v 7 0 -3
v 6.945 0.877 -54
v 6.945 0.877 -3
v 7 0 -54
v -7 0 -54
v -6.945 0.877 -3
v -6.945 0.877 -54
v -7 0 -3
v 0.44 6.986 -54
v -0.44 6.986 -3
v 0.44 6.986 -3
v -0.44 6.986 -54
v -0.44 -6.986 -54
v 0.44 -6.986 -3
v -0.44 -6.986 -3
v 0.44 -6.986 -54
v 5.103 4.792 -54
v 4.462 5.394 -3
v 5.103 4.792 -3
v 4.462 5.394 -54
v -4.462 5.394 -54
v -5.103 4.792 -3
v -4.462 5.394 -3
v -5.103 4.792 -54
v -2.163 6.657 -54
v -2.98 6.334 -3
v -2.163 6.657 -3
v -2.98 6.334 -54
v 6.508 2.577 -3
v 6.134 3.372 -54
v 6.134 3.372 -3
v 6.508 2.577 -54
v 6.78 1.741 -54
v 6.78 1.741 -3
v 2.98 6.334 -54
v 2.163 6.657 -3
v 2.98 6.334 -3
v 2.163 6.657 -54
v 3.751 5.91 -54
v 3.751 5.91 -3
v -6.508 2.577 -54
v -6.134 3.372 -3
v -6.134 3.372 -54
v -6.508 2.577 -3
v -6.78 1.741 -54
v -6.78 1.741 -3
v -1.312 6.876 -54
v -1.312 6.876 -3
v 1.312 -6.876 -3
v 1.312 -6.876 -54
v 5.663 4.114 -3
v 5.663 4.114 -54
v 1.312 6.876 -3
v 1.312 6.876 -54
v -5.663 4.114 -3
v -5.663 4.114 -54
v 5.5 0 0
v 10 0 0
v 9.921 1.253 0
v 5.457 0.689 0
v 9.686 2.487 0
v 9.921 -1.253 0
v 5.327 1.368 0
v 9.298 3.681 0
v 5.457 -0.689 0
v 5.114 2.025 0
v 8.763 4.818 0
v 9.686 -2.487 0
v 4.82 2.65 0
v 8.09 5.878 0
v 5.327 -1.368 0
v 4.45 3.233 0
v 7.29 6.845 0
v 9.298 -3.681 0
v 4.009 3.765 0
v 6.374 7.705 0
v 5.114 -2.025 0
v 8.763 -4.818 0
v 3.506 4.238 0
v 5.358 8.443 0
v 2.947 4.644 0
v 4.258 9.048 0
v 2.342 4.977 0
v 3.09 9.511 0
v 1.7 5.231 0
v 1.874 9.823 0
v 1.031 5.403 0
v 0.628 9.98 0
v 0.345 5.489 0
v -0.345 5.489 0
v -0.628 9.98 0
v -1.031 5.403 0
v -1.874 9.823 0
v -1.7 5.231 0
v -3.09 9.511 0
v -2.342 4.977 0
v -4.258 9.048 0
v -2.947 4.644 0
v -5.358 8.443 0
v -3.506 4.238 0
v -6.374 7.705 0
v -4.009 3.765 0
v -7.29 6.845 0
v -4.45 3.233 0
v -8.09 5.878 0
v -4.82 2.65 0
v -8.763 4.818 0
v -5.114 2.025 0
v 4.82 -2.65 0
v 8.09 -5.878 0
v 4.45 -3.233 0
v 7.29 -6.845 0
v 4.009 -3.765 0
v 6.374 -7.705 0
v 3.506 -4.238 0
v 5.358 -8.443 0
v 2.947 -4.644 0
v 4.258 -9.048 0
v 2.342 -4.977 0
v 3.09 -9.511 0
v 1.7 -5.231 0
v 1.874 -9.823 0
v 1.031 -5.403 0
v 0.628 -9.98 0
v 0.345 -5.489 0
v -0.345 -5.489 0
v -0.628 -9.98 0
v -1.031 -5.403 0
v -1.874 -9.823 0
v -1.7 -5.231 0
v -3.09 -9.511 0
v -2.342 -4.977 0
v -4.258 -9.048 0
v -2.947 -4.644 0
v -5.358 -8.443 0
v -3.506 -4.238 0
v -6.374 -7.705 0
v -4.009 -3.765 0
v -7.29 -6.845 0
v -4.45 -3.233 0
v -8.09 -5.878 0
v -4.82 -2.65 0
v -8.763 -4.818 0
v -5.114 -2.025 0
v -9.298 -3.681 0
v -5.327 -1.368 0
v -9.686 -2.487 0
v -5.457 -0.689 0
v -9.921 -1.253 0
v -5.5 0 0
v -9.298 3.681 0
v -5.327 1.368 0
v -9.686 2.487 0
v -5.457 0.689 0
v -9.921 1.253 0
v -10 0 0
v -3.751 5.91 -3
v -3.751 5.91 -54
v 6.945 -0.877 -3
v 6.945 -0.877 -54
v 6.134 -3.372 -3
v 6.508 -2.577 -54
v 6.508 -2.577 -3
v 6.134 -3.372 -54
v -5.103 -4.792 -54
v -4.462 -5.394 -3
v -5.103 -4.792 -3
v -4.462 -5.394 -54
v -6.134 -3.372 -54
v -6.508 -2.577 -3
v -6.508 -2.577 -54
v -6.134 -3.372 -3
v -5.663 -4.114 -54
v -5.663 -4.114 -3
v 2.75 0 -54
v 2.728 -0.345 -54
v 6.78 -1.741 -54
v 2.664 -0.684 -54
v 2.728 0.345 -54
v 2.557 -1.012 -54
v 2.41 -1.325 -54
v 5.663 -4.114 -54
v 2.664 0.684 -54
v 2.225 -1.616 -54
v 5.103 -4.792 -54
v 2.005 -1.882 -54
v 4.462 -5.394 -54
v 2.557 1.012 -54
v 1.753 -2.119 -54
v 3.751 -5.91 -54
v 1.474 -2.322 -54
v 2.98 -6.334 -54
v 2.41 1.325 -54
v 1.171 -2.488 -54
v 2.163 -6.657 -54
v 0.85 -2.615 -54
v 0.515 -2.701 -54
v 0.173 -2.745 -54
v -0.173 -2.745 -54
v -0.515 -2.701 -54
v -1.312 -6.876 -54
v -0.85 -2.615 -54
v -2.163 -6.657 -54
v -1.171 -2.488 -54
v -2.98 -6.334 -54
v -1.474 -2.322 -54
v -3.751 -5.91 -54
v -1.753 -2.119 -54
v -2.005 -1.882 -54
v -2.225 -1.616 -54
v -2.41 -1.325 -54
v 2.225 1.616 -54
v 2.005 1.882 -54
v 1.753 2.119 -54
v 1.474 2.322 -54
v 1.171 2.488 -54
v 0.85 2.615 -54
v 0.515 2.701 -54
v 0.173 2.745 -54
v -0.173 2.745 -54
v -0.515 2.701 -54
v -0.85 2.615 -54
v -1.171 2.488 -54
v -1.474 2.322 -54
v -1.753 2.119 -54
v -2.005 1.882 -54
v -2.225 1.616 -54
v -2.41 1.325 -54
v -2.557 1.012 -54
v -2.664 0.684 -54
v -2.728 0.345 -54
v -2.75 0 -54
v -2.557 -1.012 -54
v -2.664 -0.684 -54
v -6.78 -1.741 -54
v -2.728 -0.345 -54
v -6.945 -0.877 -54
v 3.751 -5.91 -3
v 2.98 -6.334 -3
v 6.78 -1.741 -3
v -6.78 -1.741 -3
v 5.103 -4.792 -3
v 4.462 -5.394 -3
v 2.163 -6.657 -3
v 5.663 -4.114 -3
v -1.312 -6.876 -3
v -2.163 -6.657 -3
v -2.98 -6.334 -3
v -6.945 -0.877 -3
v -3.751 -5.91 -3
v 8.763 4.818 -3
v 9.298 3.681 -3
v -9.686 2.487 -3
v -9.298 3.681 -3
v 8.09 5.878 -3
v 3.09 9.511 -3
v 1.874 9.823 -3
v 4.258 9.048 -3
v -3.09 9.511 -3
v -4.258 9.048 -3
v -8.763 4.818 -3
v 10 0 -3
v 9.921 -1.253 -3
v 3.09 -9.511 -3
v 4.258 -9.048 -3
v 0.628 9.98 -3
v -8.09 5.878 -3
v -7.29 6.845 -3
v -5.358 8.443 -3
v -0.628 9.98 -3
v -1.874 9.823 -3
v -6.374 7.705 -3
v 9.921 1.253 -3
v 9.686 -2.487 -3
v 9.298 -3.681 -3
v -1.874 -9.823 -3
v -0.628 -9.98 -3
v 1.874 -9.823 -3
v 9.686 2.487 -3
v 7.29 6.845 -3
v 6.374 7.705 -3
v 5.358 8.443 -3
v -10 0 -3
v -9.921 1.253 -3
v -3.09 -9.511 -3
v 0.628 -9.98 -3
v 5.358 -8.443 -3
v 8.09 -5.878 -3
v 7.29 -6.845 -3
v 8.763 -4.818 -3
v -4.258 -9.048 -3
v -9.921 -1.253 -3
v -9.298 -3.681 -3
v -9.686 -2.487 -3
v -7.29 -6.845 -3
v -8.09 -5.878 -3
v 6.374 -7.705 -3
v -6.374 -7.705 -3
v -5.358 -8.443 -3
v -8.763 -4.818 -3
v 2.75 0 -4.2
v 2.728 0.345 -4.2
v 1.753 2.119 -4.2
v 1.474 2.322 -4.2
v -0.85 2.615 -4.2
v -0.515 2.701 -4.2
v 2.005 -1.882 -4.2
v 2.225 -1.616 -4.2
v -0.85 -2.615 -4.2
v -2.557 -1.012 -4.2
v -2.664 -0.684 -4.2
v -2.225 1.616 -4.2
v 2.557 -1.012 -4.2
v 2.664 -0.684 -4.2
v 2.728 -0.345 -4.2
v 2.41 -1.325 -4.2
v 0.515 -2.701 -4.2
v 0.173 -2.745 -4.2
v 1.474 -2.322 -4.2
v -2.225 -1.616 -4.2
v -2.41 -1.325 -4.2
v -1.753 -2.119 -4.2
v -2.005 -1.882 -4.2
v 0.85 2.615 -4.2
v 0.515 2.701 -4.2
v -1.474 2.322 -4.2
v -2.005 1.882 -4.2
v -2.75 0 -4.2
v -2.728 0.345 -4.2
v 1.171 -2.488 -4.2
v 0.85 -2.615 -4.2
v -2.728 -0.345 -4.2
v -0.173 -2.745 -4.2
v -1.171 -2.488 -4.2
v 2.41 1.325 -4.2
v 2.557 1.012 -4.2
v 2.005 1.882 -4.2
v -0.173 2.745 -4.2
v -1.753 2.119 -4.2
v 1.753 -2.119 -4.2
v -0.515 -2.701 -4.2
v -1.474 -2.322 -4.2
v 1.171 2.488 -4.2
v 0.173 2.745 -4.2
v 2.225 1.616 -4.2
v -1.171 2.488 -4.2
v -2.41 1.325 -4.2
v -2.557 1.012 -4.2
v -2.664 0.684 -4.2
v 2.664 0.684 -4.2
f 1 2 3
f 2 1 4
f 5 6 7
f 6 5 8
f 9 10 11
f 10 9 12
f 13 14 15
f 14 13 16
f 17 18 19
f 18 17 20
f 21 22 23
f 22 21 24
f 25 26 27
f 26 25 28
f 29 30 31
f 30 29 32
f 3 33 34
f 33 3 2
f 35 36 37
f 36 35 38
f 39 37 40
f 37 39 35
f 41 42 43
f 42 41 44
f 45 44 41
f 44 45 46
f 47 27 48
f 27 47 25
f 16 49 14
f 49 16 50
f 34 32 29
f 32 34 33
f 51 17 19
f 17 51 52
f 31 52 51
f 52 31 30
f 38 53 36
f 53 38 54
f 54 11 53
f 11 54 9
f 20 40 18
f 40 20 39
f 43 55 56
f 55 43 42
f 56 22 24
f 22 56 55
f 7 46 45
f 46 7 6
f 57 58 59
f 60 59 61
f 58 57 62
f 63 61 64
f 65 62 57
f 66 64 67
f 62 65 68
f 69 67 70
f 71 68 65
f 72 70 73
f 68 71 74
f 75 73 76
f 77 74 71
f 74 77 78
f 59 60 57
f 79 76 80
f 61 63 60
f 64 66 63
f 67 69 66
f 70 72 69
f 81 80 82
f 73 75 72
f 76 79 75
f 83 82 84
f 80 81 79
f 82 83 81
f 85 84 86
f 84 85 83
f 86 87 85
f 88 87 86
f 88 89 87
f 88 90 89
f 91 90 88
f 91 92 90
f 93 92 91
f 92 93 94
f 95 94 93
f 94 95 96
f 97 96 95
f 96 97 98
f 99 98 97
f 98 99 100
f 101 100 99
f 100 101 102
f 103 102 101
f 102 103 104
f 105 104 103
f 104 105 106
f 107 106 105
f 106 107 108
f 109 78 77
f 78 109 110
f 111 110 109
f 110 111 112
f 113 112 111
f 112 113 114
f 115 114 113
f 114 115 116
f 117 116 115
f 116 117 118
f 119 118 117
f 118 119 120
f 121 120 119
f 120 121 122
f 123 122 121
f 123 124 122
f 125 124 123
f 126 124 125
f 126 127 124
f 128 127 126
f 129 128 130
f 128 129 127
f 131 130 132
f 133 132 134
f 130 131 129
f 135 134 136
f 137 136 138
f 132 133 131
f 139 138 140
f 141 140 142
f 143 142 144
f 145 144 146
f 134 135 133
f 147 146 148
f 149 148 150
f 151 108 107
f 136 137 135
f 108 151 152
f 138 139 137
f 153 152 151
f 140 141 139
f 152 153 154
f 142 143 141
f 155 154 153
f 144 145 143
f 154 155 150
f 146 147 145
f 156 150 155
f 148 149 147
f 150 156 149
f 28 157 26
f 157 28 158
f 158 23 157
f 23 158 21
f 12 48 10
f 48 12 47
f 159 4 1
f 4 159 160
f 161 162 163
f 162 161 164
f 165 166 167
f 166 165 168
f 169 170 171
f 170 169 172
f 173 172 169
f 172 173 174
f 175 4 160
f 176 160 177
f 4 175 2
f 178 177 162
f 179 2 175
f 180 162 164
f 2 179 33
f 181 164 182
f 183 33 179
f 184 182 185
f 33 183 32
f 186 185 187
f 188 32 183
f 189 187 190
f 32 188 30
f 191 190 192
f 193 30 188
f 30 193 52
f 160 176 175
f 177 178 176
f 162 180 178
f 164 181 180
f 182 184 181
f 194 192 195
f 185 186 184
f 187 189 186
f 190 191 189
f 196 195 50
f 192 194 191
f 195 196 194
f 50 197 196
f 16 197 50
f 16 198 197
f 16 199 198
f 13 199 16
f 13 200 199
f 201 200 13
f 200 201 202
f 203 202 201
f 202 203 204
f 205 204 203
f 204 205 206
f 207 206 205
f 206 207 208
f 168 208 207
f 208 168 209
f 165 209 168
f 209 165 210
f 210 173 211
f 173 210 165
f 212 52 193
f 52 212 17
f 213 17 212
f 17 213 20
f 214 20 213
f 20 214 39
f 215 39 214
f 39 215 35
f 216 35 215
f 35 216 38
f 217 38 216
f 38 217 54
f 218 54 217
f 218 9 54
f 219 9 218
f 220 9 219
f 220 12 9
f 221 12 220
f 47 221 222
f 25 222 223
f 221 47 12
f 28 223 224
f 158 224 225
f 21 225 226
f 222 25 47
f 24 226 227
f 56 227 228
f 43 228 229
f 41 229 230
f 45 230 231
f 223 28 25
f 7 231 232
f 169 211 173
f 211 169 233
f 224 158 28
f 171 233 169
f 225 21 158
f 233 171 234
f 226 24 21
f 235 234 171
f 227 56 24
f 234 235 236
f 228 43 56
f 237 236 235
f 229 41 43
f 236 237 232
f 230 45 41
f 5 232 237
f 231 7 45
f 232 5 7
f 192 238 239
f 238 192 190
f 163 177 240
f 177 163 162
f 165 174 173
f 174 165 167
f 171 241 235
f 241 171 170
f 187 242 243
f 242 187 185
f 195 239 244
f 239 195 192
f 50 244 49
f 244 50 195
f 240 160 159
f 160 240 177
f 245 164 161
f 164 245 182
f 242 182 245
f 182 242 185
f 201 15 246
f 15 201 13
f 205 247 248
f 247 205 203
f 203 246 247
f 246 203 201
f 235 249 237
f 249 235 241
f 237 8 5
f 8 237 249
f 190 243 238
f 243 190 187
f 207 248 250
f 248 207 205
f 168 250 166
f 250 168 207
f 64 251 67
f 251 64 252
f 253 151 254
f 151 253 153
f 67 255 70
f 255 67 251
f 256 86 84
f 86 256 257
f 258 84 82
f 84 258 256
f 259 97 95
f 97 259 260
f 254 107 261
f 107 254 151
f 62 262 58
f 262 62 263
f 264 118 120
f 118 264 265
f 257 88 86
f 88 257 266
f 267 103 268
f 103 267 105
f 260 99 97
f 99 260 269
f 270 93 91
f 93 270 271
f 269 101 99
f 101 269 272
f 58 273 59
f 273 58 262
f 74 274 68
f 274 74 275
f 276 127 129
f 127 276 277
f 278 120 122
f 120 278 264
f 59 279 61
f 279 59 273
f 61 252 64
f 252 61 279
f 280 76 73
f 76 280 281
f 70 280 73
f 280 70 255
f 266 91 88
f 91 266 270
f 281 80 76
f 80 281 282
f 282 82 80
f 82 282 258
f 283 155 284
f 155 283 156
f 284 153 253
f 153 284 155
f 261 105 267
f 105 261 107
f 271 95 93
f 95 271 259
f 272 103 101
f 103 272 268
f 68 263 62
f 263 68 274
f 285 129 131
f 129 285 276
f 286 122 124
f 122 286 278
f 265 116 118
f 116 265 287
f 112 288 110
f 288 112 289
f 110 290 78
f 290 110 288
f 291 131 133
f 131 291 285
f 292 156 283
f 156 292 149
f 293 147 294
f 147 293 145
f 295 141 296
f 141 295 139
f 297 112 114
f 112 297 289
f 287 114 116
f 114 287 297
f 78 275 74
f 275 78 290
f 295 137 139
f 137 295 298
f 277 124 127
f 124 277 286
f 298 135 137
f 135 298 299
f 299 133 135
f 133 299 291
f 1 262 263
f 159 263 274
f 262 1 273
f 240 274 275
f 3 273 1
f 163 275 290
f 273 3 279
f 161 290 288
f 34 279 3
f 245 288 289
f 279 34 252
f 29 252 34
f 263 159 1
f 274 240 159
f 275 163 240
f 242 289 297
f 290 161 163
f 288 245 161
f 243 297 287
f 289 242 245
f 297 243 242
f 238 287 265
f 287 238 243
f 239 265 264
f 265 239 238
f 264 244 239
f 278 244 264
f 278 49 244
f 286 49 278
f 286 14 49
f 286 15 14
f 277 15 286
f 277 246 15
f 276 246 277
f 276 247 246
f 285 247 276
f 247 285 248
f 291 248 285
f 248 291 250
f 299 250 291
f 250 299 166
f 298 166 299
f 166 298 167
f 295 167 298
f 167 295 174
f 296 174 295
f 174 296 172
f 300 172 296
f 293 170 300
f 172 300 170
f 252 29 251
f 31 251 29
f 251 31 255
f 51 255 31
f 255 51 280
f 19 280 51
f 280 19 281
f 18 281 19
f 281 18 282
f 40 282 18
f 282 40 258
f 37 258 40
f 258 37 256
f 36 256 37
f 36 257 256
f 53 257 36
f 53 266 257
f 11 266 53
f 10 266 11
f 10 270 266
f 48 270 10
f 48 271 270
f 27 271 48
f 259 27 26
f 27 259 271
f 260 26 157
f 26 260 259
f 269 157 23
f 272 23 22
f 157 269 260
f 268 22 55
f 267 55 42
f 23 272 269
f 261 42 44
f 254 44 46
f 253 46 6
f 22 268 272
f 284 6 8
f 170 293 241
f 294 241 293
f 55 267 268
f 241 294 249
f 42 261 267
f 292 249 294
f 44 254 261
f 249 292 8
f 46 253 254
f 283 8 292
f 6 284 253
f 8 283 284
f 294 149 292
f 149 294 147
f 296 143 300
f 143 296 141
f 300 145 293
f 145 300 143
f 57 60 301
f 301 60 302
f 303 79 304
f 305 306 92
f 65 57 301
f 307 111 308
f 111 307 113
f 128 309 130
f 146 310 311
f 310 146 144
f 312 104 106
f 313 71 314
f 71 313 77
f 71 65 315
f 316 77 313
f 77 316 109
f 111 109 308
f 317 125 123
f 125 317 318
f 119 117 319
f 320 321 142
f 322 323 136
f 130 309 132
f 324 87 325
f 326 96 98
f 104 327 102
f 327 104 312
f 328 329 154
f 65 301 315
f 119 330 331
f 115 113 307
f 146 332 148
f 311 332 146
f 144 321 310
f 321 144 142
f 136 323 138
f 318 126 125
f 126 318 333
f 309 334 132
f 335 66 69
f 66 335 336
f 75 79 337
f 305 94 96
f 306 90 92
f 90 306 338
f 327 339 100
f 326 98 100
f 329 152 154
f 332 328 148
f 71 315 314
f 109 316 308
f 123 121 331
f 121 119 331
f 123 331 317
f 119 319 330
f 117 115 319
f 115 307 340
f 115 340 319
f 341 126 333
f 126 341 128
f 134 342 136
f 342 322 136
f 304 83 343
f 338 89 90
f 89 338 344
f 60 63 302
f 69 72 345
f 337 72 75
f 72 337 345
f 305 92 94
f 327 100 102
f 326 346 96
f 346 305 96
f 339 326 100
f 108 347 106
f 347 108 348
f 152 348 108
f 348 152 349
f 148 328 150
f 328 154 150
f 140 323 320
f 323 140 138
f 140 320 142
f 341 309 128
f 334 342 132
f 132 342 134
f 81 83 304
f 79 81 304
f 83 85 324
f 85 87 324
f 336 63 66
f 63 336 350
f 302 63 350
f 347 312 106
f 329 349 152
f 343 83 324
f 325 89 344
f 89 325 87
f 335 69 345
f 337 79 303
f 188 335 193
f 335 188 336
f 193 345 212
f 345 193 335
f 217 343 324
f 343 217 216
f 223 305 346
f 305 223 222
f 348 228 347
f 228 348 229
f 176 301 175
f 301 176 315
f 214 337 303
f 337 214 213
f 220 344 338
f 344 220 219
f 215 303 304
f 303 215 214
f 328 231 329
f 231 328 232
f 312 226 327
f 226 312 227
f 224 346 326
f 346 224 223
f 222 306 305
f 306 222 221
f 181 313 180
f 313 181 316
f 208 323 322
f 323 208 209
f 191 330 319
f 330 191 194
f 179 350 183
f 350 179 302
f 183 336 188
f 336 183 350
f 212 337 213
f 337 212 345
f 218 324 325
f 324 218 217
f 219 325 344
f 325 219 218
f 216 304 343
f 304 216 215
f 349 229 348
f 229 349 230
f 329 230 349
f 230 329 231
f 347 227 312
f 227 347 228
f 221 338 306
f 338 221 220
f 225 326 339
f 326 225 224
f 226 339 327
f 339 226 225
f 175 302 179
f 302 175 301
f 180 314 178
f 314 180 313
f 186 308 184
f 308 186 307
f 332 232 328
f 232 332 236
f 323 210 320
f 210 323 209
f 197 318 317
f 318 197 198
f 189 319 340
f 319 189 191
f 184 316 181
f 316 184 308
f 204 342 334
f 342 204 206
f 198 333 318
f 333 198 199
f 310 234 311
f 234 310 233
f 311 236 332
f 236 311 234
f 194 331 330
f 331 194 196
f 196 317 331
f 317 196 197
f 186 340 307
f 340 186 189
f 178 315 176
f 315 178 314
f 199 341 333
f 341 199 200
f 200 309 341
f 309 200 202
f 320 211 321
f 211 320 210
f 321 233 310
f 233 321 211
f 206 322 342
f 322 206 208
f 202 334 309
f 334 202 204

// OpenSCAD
$fn = 50;


difference() {
	union() {
		translate(v = [0, 0, -54.0000000000]) {
			cylinder(h = 54, r = 7.0000000000);
		}
		translate(v = [0, 0, -3.0000000000]) {
			cylinder(h = 3, r = 10.0000000000);
		}
	}
	union() {
		translate(v = [0, 0, 0]) {
			rotate(a = [0, 0, 0]) {
				difference() {
					union() {
						#translate(v = [0, 0, -54.0000000000]) {
							cylinder(h = 54, r = 2.2500000000);
						}
						#translate(v = [0, 0, -4.2000000000]) {
							cylinder(h = 4.2000000000, r = 7.0000000000, r1 = 2.7500000000, r2 = 5.5000000000);
						}
						#translate(v = [0, 0, -54.0000000000]) {
							cylinder(h = 54, r = 2.7500000000);
						}
						#translate(v = [0, 0, -54.0000000000]) {
							cylinder(h = 54, r = 2.2500000000);
						}
					}
					union();
				}
			}
		}
	}
}
